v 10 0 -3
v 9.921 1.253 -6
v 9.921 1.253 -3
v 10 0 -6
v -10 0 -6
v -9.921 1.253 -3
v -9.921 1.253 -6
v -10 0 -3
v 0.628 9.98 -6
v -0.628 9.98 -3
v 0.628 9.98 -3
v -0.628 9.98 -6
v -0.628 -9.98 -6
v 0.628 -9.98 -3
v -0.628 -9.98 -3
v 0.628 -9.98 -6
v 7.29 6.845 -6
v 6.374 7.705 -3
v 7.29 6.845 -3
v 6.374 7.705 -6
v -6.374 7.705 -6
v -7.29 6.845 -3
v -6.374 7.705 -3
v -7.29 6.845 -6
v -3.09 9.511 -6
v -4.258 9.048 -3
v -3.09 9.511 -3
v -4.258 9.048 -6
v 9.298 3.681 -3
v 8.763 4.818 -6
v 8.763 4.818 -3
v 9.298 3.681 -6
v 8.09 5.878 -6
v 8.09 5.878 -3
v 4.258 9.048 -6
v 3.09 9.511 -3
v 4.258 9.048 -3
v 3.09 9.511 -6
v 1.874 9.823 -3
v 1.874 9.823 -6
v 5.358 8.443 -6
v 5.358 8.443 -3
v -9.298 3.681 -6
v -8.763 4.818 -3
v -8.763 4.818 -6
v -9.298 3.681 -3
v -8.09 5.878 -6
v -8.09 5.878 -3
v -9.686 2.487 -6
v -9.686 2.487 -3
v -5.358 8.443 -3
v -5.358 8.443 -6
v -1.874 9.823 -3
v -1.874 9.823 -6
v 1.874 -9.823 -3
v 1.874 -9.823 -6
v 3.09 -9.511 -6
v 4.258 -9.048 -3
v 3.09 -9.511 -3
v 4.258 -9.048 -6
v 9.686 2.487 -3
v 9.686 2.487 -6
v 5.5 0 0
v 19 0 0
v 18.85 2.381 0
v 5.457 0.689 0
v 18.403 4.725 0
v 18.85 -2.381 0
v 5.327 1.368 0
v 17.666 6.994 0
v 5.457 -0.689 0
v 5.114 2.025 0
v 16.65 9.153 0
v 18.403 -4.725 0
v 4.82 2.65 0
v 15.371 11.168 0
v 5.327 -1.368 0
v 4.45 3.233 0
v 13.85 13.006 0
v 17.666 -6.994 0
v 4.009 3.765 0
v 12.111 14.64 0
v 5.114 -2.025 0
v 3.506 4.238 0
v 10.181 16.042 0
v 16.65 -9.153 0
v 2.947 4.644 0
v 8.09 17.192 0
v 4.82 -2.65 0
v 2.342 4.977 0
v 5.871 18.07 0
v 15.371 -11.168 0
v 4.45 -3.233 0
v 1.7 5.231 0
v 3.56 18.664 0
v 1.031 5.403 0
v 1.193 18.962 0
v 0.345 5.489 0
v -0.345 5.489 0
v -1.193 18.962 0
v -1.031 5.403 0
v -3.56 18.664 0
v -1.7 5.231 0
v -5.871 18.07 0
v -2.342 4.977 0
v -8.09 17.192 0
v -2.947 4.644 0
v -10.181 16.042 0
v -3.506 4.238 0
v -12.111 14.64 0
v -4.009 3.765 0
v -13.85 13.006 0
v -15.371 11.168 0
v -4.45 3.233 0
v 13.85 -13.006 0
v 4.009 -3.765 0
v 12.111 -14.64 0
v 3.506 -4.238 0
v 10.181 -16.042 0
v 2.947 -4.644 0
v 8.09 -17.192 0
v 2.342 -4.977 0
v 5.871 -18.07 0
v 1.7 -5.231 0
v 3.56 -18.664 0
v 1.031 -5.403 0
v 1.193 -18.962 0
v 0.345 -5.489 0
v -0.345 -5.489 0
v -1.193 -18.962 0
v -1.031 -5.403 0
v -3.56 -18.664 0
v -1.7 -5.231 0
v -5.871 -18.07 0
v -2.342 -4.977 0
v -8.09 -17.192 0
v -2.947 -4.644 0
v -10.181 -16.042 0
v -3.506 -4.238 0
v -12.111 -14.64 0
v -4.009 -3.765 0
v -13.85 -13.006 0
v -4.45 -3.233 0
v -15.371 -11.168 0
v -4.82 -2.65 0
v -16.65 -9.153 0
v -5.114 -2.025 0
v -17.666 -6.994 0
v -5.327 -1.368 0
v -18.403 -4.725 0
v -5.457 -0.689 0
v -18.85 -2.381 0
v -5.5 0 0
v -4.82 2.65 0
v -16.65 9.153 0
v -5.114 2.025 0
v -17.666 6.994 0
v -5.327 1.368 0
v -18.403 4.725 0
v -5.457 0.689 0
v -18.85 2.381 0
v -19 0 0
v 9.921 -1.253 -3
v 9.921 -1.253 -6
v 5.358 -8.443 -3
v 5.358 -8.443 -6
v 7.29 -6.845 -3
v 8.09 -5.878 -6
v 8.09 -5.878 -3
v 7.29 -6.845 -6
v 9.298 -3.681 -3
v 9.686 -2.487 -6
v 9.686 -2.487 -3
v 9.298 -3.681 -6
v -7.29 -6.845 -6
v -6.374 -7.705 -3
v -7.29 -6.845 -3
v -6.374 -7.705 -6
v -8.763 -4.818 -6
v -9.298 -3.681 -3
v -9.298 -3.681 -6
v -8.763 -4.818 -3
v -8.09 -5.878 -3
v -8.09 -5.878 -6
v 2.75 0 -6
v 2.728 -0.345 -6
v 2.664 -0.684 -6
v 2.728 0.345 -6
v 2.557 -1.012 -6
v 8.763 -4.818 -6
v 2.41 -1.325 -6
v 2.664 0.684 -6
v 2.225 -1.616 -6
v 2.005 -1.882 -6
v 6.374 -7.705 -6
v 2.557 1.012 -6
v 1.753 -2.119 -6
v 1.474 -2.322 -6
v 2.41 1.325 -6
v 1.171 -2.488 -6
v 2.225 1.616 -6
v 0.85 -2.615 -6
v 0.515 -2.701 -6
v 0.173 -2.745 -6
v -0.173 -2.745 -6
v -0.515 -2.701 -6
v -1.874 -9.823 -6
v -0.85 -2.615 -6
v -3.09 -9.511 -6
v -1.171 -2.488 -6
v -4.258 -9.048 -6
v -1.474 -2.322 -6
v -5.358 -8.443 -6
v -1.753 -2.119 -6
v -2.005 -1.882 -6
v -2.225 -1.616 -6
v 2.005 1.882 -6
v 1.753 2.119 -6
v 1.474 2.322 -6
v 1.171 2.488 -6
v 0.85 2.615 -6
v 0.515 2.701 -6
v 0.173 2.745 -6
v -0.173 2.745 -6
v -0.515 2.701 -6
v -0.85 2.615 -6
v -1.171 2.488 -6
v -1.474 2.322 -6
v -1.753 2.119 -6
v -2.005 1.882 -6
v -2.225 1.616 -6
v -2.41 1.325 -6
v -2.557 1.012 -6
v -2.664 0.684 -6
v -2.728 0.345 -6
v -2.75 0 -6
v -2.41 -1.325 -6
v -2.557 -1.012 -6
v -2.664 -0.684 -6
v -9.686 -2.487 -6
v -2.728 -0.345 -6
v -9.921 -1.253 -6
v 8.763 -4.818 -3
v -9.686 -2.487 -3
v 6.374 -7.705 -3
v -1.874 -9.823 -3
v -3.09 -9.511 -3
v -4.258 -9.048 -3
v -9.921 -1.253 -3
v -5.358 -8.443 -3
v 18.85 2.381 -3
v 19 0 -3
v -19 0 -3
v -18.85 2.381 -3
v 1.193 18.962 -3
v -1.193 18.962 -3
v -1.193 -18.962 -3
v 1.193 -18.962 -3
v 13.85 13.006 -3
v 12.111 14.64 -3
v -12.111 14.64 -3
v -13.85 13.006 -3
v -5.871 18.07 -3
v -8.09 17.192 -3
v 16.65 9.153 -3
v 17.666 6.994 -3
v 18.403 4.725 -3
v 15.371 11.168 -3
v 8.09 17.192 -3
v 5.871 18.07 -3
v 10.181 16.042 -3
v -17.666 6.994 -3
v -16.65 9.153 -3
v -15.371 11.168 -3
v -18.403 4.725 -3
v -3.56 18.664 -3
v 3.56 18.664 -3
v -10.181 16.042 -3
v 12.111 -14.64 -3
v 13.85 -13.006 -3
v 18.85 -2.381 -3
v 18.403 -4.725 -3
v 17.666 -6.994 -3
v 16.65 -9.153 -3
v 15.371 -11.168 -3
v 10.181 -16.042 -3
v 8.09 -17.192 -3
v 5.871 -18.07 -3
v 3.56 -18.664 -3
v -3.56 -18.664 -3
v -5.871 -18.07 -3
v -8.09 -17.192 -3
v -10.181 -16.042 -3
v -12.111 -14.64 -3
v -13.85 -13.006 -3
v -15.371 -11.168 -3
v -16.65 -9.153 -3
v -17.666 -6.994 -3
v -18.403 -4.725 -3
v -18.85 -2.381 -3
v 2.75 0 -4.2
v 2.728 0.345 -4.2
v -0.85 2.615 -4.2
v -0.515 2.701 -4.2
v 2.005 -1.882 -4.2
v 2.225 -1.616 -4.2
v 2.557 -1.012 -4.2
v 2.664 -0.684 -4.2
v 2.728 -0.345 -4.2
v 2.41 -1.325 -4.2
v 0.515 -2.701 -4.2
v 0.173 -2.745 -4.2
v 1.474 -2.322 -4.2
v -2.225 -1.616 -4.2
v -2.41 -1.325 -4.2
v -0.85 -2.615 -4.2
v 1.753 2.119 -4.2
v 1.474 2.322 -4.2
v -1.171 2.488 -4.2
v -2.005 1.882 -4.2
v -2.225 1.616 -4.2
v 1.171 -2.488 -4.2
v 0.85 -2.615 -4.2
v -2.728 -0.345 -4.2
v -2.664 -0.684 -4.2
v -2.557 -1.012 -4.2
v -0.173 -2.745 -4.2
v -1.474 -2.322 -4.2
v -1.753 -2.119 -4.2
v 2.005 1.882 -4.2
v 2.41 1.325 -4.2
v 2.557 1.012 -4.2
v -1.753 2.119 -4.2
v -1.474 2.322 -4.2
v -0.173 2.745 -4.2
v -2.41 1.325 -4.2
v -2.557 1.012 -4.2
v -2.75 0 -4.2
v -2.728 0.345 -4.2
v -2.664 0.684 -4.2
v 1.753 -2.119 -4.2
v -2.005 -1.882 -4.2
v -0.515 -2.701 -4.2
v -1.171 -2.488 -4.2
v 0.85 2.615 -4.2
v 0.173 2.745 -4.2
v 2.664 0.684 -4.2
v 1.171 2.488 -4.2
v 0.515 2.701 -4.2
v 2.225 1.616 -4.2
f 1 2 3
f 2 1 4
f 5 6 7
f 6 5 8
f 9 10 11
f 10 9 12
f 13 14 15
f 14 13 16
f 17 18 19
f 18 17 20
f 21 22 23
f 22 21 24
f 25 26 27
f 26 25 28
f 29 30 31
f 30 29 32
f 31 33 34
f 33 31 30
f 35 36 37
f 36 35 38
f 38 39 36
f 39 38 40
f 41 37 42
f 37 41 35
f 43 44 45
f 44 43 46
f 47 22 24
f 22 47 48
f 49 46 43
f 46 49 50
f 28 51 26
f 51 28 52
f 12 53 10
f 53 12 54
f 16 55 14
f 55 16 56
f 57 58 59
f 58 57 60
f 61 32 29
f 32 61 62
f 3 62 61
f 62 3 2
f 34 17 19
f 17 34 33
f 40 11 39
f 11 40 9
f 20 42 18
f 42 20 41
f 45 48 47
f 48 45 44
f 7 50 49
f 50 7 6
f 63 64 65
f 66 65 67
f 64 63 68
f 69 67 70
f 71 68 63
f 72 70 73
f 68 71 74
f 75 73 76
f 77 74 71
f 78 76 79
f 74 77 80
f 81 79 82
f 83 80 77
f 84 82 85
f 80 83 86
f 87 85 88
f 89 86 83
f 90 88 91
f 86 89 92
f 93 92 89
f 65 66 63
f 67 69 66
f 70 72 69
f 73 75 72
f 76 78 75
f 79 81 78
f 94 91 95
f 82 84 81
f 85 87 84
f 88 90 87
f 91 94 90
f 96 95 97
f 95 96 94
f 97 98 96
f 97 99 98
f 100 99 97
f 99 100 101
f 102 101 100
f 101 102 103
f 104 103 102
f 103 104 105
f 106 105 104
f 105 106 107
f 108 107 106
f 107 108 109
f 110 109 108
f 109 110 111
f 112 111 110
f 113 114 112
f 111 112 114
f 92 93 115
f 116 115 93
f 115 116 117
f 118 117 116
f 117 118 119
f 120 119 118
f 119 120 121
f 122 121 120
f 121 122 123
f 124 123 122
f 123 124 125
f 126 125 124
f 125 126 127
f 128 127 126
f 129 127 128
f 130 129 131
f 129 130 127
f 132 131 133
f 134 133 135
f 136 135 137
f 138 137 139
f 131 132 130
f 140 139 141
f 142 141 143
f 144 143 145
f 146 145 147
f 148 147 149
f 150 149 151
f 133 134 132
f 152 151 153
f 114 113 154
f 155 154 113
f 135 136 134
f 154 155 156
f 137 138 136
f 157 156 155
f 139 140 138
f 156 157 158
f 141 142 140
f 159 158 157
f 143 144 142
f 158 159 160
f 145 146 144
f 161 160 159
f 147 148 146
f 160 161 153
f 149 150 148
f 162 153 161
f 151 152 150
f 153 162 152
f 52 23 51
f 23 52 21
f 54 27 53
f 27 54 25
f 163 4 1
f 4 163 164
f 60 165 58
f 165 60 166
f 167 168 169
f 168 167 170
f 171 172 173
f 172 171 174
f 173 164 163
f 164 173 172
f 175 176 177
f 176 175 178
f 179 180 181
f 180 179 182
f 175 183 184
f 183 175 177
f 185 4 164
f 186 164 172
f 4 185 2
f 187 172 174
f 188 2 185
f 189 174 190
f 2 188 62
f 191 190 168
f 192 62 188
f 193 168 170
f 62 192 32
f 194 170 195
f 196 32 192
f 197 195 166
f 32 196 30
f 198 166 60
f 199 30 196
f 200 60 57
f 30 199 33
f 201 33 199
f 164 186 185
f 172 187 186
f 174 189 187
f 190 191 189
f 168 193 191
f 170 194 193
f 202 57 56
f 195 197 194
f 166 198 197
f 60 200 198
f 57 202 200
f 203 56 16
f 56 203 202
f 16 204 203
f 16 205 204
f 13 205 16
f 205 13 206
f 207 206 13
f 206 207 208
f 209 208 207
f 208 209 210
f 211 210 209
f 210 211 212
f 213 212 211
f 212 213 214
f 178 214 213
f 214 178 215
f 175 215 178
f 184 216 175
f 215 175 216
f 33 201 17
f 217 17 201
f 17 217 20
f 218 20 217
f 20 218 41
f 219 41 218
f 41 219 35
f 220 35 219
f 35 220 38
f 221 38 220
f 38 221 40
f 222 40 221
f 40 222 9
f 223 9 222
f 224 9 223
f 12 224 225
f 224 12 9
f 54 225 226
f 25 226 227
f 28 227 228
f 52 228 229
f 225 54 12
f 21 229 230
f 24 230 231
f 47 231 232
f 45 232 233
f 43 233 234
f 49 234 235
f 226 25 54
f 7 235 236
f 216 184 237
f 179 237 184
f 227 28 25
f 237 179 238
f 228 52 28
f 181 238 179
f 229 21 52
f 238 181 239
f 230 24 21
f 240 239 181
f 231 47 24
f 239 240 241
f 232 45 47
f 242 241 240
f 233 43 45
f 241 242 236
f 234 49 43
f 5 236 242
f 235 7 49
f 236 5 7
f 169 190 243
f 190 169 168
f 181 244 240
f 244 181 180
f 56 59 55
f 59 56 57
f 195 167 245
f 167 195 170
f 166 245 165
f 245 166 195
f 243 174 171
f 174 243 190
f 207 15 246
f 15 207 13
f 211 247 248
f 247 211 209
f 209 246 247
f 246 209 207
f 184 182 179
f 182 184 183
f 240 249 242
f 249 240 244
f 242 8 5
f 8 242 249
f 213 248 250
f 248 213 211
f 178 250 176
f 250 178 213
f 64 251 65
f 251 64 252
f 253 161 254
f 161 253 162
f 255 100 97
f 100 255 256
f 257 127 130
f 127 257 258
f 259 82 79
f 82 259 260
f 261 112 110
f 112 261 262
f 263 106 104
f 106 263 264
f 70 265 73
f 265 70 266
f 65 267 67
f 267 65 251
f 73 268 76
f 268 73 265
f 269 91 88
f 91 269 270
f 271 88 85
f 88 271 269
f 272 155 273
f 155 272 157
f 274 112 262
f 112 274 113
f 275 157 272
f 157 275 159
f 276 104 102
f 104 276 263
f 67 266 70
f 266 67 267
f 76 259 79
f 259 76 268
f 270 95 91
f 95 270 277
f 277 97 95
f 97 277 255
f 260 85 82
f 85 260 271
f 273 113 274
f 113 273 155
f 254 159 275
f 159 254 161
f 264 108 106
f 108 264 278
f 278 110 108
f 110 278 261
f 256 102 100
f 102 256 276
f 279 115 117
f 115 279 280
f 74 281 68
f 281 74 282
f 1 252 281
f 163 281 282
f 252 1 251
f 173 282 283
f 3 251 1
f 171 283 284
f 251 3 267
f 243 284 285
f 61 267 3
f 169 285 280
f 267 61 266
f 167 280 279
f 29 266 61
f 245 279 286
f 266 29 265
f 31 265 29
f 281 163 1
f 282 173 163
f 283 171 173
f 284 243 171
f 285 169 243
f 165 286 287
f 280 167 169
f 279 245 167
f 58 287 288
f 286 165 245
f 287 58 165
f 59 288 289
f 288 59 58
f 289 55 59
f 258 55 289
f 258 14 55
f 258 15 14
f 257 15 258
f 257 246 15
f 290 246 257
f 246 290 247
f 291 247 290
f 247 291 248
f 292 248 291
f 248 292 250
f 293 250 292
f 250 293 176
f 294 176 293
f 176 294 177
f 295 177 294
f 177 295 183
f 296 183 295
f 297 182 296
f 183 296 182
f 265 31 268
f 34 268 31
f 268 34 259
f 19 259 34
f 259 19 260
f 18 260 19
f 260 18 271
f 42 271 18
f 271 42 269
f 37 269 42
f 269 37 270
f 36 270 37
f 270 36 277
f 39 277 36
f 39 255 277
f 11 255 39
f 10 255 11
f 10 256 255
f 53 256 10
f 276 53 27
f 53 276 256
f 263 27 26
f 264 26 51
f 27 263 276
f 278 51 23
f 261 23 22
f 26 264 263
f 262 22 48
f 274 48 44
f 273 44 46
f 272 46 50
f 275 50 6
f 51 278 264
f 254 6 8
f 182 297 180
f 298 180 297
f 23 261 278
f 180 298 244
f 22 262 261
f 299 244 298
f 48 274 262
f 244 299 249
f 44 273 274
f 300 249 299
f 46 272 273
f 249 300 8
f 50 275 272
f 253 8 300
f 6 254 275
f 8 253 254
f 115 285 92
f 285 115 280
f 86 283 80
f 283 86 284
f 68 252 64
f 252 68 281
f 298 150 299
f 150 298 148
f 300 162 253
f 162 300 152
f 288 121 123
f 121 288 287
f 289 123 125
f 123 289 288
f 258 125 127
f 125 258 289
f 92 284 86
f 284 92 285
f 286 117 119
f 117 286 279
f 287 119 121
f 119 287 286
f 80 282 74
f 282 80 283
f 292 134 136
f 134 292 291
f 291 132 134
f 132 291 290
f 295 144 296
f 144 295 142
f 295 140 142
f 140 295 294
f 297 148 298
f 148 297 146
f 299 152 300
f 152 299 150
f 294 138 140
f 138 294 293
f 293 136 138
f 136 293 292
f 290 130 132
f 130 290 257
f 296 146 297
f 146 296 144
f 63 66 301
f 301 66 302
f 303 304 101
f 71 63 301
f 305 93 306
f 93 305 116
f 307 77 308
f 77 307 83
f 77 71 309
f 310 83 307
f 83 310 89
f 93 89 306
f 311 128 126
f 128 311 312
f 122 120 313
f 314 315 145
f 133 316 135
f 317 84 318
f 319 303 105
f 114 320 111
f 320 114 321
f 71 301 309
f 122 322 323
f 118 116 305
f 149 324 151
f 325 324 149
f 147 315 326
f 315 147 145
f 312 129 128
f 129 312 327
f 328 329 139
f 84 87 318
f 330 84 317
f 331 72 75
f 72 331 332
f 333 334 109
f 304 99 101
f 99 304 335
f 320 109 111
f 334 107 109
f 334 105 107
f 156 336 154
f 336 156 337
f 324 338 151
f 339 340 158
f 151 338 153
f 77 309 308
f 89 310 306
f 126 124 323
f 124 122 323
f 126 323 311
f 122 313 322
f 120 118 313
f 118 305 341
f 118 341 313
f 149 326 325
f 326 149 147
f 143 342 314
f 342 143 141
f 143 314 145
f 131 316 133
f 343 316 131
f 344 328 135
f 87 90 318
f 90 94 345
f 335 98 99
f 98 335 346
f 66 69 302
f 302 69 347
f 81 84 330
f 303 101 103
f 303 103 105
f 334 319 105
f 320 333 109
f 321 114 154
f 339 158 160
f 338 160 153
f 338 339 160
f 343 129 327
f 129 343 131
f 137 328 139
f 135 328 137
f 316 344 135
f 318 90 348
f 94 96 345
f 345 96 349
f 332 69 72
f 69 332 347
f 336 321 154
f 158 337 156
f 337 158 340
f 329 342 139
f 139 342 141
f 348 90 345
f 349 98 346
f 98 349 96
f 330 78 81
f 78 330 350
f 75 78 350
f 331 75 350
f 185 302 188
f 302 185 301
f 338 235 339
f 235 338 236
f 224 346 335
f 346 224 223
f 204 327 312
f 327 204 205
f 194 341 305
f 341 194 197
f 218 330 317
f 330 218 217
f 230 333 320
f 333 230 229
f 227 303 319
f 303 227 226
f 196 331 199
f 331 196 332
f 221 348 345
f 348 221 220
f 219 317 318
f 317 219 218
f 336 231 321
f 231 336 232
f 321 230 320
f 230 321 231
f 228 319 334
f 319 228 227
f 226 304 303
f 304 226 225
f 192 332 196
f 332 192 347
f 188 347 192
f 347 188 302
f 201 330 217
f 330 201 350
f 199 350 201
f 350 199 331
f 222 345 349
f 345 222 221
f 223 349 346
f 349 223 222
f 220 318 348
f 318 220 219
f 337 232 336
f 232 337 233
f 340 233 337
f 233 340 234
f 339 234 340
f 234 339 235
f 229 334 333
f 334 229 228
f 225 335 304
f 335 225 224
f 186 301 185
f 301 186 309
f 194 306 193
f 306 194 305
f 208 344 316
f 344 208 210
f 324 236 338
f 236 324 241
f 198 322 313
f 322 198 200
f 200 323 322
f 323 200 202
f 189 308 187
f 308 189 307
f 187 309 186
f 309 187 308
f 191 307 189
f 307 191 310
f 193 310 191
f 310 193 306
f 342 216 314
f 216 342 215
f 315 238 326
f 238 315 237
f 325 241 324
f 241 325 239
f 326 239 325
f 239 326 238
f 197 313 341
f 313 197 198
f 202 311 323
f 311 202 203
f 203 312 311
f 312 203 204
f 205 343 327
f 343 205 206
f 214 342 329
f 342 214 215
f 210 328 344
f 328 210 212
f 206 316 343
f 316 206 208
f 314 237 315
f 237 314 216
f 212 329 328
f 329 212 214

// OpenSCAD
$fn = 50;


difference() {
	union() {
		translate(v = [0, 0, -6.0000000000]) {
			cylinder(h = 6, r = 10.0000000000);
		}
		translate(v = [0, 0, -3.0000000000]) {
			cylinder(h = 3, r = 19.0000000000);
		}
	}
	union() {
		translate(v = [0, 0, 0]) {
			rotate(a = [0, 0, 0]) {
				difference() {
					union() {
						#translate(v = [0, 0, -6.0000000000]) {
							cylinder(h = 6, r = 2.2500000000);
						}
						#translate(v = [0, 0, -4.2000000000]) {
							cylinder(h = 4.2000000000, r1 = 2.7500000000, r2 = 5.5000000000);
						}
						#translate(v = [0, 0, -6.0000000000]) {
							cylinder(h = 6, r = 2.7500000000);
						}
						#translate(v = [0, 0, -6.0000000000]) {
							cylinder(h = 6, r = 2.2500000000);
						}
					}
					union();
				}
			}
		}
	}
}
